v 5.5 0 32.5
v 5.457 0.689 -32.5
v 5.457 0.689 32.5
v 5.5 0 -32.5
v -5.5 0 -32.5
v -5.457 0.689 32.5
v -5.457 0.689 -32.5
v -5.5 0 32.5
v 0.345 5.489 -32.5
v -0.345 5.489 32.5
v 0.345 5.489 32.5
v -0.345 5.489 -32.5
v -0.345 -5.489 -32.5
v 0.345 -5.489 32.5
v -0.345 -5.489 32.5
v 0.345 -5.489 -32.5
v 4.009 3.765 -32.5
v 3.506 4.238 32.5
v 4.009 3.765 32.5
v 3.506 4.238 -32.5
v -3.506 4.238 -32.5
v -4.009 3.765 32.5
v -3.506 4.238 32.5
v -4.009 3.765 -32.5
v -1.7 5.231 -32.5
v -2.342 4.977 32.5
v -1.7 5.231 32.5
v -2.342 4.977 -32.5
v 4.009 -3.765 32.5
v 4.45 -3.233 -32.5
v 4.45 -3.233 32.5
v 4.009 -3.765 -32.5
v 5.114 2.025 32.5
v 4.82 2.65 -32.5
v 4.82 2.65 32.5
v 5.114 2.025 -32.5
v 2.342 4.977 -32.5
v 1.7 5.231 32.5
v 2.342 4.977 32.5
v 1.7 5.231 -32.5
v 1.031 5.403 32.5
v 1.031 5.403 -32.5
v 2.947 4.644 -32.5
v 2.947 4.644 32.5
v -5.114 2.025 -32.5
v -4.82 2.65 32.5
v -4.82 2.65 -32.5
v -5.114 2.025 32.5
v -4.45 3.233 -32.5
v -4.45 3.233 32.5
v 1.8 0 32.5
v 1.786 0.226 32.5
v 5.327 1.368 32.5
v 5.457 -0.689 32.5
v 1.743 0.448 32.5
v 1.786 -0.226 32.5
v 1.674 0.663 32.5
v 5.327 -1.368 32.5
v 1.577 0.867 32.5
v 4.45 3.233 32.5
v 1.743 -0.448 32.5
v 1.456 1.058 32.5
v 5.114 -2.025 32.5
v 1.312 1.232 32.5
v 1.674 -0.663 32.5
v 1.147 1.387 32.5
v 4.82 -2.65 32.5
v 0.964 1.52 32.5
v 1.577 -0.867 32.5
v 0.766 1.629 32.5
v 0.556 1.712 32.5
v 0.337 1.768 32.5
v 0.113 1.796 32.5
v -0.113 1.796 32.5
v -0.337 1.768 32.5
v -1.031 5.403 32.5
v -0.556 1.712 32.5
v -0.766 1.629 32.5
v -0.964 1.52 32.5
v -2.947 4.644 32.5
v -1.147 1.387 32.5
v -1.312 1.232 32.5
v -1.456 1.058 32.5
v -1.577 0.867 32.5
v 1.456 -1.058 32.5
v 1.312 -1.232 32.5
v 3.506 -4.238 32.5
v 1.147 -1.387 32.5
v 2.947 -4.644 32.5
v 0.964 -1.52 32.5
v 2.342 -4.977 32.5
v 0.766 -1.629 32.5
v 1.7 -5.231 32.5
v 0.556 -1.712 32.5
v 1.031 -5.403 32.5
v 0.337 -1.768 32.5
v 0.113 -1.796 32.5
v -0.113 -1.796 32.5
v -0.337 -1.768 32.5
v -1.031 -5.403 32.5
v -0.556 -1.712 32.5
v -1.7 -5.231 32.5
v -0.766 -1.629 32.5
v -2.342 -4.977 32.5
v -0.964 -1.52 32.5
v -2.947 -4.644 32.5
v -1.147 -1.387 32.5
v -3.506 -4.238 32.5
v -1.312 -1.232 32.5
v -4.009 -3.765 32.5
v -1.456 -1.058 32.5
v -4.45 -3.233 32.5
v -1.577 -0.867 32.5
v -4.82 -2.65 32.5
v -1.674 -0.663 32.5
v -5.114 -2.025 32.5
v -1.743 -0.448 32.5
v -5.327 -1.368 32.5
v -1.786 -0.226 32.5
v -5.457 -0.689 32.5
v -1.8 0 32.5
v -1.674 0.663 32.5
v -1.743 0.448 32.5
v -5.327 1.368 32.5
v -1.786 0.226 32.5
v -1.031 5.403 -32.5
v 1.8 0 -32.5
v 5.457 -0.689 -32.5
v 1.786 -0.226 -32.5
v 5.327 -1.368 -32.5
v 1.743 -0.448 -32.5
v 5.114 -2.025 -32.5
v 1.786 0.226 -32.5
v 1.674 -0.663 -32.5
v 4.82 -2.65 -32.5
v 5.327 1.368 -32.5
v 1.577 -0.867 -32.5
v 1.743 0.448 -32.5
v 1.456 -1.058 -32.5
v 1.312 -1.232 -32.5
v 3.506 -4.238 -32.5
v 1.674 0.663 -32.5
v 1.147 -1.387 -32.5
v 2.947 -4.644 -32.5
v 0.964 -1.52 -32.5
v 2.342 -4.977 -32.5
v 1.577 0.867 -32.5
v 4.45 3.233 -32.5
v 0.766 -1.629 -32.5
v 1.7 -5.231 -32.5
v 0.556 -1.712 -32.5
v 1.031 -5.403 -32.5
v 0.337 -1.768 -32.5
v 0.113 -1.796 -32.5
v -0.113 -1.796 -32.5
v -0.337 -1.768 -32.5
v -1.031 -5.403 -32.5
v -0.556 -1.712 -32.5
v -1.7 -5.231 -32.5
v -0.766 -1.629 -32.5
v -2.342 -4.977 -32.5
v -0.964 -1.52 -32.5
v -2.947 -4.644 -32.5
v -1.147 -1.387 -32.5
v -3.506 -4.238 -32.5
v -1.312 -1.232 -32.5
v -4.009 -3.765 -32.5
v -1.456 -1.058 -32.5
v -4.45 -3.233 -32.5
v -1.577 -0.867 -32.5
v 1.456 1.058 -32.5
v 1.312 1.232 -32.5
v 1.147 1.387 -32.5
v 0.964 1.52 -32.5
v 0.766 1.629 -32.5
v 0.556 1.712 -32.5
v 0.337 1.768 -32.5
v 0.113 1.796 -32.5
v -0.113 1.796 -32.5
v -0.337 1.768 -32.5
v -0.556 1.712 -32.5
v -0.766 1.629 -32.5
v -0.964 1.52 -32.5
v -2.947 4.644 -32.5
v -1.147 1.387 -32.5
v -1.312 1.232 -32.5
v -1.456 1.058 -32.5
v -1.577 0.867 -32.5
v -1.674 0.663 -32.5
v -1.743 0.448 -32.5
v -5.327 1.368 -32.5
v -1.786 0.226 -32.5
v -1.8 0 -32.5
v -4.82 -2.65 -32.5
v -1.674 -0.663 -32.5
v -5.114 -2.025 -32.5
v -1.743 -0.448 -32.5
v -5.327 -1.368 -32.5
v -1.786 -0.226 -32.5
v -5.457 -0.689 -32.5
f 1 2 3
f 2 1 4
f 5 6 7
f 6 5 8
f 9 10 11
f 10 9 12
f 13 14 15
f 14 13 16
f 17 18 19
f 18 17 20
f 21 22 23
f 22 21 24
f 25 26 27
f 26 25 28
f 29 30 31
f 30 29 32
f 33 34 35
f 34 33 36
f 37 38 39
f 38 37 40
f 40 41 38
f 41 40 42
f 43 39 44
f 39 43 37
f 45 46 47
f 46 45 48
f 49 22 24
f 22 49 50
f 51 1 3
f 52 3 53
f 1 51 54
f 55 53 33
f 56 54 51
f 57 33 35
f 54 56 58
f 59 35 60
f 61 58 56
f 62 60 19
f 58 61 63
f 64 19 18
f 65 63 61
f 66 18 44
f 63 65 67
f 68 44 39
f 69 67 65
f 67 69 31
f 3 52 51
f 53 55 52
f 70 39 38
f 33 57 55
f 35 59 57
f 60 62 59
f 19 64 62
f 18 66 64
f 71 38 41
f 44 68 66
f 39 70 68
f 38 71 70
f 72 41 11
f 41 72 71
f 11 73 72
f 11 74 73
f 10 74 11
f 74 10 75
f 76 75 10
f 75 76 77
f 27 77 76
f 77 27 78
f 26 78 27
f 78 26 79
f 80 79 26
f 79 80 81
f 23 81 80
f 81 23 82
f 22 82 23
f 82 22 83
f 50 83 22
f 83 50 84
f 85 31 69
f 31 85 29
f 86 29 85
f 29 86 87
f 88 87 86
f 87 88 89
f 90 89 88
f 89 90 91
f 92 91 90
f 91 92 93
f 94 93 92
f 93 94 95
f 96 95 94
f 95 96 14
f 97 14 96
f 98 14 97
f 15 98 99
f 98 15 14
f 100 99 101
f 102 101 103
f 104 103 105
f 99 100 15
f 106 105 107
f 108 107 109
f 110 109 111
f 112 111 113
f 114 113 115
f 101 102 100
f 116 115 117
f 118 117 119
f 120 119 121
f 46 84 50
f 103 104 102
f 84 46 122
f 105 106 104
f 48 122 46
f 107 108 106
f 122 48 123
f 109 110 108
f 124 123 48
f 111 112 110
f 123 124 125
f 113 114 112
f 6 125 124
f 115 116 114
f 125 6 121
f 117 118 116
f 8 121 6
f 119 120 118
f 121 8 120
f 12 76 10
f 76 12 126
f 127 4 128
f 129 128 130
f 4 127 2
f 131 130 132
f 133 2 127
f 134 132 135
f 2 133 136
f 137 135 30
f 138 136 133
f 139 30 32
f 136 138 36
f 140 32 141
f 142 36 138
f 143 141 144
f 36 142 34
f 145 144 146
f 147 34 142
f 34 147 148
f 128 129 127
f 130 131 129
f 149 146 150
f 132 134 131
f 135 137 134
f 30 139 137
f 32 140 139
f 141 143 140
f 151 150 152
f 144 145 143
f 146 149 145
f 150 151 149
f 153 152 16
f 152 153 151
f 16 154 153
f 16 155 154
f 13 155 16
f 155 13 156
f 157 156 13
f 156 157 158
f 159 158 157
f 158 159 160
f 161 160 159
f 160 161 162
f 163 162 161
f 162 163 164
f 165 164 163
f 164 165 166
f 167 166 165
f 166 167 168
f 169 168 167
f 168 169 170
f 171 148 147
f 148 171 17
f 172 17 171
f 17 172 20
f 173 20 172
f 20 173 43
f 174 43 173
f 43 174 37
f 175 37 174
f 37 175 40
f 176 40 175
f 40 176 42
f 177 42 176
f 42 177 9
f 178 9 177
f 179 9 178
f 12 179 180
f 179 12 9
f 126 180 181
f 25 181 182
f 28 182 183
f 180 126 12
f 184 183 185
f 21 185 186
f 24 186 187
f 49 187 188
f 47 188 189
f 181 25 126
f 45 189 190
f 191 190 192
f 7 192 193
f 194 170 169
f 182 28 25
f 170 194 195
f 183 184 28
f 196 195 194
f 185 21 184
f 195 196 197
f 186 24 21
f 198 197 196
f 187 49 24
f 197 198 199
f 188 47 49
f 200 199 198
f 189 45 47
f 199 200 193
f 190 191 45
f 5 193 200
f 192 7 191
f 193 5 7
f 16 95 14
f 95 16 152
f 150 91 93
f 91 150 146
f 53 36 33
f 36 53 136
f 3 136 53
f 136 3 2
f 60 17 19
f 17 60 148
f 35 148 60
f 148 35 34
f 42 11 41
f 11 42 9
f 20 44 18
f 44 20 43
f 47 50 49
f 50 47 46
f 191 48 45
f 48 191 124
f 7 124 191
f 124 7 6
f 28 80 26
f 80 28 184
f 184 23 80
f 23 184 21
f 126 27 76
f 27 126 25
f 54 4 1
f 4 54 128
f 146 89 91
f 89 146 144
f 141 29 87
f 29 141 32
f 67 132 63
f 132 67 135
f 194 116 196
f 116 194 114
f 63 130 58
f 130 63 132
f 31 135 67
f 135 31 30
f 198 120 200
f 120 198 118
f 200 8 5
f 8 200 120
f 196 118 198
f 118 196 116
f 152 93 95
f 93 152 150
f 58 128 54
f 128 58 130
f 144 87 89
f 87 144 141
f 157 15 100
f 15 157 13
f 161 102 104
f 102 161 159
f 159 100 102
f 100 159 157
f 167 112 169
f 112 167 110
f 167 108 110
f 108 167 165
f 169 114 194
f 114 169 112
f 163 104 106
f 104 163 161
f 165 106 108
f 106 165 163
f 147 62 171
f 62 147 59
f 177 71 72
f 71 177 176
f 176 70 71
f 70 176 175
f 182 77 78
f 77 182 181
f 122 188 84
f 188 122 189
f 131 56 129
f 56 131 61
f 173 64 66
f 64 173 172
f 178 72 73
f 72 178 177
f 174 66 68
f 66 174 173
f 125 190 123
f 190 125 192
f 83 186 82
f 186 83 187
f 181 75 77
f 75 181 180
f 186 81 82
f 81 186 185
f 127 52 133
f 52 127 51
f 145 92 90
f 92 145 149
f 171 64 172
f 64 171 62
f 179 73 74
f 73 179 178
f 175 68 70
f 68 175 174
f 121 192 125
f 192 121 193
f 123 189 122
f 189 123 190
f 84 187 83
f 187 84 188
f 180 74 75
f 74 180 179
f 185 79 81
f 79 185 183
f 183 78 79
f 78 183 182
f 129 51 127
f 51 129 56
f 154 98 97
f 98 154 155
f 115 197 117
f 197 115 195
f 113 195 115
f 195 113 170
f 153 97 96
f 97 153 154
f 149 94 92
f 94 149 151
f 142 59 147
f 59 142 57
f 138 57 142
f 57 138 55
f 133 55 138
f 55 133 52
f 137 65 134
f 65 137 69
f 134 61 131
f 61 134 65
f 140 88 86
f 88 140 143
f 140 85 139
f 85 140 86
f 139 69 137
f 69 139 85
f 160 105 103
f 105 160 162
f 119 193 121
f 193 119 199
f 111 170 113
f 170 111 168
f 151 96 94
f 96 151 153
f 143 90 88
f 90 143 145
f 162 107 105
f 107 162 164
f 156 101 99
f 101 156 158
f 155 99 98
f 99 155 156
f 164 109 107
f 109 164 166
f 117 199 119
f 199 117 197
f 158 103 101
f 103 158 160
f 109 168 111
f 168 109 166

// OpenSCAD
$fn = 50;


difference() {
	union() {
		translate(v = [0, 0, -32.5000000000]) {
			cylinder(h = 65, r = 5.5000000000);
		}
	}
	union() {
		translate(v = [0, 0, -100.0000000000]) {
			cylinder(h = 200, r = 1.8000000000);
		}
	}
}
